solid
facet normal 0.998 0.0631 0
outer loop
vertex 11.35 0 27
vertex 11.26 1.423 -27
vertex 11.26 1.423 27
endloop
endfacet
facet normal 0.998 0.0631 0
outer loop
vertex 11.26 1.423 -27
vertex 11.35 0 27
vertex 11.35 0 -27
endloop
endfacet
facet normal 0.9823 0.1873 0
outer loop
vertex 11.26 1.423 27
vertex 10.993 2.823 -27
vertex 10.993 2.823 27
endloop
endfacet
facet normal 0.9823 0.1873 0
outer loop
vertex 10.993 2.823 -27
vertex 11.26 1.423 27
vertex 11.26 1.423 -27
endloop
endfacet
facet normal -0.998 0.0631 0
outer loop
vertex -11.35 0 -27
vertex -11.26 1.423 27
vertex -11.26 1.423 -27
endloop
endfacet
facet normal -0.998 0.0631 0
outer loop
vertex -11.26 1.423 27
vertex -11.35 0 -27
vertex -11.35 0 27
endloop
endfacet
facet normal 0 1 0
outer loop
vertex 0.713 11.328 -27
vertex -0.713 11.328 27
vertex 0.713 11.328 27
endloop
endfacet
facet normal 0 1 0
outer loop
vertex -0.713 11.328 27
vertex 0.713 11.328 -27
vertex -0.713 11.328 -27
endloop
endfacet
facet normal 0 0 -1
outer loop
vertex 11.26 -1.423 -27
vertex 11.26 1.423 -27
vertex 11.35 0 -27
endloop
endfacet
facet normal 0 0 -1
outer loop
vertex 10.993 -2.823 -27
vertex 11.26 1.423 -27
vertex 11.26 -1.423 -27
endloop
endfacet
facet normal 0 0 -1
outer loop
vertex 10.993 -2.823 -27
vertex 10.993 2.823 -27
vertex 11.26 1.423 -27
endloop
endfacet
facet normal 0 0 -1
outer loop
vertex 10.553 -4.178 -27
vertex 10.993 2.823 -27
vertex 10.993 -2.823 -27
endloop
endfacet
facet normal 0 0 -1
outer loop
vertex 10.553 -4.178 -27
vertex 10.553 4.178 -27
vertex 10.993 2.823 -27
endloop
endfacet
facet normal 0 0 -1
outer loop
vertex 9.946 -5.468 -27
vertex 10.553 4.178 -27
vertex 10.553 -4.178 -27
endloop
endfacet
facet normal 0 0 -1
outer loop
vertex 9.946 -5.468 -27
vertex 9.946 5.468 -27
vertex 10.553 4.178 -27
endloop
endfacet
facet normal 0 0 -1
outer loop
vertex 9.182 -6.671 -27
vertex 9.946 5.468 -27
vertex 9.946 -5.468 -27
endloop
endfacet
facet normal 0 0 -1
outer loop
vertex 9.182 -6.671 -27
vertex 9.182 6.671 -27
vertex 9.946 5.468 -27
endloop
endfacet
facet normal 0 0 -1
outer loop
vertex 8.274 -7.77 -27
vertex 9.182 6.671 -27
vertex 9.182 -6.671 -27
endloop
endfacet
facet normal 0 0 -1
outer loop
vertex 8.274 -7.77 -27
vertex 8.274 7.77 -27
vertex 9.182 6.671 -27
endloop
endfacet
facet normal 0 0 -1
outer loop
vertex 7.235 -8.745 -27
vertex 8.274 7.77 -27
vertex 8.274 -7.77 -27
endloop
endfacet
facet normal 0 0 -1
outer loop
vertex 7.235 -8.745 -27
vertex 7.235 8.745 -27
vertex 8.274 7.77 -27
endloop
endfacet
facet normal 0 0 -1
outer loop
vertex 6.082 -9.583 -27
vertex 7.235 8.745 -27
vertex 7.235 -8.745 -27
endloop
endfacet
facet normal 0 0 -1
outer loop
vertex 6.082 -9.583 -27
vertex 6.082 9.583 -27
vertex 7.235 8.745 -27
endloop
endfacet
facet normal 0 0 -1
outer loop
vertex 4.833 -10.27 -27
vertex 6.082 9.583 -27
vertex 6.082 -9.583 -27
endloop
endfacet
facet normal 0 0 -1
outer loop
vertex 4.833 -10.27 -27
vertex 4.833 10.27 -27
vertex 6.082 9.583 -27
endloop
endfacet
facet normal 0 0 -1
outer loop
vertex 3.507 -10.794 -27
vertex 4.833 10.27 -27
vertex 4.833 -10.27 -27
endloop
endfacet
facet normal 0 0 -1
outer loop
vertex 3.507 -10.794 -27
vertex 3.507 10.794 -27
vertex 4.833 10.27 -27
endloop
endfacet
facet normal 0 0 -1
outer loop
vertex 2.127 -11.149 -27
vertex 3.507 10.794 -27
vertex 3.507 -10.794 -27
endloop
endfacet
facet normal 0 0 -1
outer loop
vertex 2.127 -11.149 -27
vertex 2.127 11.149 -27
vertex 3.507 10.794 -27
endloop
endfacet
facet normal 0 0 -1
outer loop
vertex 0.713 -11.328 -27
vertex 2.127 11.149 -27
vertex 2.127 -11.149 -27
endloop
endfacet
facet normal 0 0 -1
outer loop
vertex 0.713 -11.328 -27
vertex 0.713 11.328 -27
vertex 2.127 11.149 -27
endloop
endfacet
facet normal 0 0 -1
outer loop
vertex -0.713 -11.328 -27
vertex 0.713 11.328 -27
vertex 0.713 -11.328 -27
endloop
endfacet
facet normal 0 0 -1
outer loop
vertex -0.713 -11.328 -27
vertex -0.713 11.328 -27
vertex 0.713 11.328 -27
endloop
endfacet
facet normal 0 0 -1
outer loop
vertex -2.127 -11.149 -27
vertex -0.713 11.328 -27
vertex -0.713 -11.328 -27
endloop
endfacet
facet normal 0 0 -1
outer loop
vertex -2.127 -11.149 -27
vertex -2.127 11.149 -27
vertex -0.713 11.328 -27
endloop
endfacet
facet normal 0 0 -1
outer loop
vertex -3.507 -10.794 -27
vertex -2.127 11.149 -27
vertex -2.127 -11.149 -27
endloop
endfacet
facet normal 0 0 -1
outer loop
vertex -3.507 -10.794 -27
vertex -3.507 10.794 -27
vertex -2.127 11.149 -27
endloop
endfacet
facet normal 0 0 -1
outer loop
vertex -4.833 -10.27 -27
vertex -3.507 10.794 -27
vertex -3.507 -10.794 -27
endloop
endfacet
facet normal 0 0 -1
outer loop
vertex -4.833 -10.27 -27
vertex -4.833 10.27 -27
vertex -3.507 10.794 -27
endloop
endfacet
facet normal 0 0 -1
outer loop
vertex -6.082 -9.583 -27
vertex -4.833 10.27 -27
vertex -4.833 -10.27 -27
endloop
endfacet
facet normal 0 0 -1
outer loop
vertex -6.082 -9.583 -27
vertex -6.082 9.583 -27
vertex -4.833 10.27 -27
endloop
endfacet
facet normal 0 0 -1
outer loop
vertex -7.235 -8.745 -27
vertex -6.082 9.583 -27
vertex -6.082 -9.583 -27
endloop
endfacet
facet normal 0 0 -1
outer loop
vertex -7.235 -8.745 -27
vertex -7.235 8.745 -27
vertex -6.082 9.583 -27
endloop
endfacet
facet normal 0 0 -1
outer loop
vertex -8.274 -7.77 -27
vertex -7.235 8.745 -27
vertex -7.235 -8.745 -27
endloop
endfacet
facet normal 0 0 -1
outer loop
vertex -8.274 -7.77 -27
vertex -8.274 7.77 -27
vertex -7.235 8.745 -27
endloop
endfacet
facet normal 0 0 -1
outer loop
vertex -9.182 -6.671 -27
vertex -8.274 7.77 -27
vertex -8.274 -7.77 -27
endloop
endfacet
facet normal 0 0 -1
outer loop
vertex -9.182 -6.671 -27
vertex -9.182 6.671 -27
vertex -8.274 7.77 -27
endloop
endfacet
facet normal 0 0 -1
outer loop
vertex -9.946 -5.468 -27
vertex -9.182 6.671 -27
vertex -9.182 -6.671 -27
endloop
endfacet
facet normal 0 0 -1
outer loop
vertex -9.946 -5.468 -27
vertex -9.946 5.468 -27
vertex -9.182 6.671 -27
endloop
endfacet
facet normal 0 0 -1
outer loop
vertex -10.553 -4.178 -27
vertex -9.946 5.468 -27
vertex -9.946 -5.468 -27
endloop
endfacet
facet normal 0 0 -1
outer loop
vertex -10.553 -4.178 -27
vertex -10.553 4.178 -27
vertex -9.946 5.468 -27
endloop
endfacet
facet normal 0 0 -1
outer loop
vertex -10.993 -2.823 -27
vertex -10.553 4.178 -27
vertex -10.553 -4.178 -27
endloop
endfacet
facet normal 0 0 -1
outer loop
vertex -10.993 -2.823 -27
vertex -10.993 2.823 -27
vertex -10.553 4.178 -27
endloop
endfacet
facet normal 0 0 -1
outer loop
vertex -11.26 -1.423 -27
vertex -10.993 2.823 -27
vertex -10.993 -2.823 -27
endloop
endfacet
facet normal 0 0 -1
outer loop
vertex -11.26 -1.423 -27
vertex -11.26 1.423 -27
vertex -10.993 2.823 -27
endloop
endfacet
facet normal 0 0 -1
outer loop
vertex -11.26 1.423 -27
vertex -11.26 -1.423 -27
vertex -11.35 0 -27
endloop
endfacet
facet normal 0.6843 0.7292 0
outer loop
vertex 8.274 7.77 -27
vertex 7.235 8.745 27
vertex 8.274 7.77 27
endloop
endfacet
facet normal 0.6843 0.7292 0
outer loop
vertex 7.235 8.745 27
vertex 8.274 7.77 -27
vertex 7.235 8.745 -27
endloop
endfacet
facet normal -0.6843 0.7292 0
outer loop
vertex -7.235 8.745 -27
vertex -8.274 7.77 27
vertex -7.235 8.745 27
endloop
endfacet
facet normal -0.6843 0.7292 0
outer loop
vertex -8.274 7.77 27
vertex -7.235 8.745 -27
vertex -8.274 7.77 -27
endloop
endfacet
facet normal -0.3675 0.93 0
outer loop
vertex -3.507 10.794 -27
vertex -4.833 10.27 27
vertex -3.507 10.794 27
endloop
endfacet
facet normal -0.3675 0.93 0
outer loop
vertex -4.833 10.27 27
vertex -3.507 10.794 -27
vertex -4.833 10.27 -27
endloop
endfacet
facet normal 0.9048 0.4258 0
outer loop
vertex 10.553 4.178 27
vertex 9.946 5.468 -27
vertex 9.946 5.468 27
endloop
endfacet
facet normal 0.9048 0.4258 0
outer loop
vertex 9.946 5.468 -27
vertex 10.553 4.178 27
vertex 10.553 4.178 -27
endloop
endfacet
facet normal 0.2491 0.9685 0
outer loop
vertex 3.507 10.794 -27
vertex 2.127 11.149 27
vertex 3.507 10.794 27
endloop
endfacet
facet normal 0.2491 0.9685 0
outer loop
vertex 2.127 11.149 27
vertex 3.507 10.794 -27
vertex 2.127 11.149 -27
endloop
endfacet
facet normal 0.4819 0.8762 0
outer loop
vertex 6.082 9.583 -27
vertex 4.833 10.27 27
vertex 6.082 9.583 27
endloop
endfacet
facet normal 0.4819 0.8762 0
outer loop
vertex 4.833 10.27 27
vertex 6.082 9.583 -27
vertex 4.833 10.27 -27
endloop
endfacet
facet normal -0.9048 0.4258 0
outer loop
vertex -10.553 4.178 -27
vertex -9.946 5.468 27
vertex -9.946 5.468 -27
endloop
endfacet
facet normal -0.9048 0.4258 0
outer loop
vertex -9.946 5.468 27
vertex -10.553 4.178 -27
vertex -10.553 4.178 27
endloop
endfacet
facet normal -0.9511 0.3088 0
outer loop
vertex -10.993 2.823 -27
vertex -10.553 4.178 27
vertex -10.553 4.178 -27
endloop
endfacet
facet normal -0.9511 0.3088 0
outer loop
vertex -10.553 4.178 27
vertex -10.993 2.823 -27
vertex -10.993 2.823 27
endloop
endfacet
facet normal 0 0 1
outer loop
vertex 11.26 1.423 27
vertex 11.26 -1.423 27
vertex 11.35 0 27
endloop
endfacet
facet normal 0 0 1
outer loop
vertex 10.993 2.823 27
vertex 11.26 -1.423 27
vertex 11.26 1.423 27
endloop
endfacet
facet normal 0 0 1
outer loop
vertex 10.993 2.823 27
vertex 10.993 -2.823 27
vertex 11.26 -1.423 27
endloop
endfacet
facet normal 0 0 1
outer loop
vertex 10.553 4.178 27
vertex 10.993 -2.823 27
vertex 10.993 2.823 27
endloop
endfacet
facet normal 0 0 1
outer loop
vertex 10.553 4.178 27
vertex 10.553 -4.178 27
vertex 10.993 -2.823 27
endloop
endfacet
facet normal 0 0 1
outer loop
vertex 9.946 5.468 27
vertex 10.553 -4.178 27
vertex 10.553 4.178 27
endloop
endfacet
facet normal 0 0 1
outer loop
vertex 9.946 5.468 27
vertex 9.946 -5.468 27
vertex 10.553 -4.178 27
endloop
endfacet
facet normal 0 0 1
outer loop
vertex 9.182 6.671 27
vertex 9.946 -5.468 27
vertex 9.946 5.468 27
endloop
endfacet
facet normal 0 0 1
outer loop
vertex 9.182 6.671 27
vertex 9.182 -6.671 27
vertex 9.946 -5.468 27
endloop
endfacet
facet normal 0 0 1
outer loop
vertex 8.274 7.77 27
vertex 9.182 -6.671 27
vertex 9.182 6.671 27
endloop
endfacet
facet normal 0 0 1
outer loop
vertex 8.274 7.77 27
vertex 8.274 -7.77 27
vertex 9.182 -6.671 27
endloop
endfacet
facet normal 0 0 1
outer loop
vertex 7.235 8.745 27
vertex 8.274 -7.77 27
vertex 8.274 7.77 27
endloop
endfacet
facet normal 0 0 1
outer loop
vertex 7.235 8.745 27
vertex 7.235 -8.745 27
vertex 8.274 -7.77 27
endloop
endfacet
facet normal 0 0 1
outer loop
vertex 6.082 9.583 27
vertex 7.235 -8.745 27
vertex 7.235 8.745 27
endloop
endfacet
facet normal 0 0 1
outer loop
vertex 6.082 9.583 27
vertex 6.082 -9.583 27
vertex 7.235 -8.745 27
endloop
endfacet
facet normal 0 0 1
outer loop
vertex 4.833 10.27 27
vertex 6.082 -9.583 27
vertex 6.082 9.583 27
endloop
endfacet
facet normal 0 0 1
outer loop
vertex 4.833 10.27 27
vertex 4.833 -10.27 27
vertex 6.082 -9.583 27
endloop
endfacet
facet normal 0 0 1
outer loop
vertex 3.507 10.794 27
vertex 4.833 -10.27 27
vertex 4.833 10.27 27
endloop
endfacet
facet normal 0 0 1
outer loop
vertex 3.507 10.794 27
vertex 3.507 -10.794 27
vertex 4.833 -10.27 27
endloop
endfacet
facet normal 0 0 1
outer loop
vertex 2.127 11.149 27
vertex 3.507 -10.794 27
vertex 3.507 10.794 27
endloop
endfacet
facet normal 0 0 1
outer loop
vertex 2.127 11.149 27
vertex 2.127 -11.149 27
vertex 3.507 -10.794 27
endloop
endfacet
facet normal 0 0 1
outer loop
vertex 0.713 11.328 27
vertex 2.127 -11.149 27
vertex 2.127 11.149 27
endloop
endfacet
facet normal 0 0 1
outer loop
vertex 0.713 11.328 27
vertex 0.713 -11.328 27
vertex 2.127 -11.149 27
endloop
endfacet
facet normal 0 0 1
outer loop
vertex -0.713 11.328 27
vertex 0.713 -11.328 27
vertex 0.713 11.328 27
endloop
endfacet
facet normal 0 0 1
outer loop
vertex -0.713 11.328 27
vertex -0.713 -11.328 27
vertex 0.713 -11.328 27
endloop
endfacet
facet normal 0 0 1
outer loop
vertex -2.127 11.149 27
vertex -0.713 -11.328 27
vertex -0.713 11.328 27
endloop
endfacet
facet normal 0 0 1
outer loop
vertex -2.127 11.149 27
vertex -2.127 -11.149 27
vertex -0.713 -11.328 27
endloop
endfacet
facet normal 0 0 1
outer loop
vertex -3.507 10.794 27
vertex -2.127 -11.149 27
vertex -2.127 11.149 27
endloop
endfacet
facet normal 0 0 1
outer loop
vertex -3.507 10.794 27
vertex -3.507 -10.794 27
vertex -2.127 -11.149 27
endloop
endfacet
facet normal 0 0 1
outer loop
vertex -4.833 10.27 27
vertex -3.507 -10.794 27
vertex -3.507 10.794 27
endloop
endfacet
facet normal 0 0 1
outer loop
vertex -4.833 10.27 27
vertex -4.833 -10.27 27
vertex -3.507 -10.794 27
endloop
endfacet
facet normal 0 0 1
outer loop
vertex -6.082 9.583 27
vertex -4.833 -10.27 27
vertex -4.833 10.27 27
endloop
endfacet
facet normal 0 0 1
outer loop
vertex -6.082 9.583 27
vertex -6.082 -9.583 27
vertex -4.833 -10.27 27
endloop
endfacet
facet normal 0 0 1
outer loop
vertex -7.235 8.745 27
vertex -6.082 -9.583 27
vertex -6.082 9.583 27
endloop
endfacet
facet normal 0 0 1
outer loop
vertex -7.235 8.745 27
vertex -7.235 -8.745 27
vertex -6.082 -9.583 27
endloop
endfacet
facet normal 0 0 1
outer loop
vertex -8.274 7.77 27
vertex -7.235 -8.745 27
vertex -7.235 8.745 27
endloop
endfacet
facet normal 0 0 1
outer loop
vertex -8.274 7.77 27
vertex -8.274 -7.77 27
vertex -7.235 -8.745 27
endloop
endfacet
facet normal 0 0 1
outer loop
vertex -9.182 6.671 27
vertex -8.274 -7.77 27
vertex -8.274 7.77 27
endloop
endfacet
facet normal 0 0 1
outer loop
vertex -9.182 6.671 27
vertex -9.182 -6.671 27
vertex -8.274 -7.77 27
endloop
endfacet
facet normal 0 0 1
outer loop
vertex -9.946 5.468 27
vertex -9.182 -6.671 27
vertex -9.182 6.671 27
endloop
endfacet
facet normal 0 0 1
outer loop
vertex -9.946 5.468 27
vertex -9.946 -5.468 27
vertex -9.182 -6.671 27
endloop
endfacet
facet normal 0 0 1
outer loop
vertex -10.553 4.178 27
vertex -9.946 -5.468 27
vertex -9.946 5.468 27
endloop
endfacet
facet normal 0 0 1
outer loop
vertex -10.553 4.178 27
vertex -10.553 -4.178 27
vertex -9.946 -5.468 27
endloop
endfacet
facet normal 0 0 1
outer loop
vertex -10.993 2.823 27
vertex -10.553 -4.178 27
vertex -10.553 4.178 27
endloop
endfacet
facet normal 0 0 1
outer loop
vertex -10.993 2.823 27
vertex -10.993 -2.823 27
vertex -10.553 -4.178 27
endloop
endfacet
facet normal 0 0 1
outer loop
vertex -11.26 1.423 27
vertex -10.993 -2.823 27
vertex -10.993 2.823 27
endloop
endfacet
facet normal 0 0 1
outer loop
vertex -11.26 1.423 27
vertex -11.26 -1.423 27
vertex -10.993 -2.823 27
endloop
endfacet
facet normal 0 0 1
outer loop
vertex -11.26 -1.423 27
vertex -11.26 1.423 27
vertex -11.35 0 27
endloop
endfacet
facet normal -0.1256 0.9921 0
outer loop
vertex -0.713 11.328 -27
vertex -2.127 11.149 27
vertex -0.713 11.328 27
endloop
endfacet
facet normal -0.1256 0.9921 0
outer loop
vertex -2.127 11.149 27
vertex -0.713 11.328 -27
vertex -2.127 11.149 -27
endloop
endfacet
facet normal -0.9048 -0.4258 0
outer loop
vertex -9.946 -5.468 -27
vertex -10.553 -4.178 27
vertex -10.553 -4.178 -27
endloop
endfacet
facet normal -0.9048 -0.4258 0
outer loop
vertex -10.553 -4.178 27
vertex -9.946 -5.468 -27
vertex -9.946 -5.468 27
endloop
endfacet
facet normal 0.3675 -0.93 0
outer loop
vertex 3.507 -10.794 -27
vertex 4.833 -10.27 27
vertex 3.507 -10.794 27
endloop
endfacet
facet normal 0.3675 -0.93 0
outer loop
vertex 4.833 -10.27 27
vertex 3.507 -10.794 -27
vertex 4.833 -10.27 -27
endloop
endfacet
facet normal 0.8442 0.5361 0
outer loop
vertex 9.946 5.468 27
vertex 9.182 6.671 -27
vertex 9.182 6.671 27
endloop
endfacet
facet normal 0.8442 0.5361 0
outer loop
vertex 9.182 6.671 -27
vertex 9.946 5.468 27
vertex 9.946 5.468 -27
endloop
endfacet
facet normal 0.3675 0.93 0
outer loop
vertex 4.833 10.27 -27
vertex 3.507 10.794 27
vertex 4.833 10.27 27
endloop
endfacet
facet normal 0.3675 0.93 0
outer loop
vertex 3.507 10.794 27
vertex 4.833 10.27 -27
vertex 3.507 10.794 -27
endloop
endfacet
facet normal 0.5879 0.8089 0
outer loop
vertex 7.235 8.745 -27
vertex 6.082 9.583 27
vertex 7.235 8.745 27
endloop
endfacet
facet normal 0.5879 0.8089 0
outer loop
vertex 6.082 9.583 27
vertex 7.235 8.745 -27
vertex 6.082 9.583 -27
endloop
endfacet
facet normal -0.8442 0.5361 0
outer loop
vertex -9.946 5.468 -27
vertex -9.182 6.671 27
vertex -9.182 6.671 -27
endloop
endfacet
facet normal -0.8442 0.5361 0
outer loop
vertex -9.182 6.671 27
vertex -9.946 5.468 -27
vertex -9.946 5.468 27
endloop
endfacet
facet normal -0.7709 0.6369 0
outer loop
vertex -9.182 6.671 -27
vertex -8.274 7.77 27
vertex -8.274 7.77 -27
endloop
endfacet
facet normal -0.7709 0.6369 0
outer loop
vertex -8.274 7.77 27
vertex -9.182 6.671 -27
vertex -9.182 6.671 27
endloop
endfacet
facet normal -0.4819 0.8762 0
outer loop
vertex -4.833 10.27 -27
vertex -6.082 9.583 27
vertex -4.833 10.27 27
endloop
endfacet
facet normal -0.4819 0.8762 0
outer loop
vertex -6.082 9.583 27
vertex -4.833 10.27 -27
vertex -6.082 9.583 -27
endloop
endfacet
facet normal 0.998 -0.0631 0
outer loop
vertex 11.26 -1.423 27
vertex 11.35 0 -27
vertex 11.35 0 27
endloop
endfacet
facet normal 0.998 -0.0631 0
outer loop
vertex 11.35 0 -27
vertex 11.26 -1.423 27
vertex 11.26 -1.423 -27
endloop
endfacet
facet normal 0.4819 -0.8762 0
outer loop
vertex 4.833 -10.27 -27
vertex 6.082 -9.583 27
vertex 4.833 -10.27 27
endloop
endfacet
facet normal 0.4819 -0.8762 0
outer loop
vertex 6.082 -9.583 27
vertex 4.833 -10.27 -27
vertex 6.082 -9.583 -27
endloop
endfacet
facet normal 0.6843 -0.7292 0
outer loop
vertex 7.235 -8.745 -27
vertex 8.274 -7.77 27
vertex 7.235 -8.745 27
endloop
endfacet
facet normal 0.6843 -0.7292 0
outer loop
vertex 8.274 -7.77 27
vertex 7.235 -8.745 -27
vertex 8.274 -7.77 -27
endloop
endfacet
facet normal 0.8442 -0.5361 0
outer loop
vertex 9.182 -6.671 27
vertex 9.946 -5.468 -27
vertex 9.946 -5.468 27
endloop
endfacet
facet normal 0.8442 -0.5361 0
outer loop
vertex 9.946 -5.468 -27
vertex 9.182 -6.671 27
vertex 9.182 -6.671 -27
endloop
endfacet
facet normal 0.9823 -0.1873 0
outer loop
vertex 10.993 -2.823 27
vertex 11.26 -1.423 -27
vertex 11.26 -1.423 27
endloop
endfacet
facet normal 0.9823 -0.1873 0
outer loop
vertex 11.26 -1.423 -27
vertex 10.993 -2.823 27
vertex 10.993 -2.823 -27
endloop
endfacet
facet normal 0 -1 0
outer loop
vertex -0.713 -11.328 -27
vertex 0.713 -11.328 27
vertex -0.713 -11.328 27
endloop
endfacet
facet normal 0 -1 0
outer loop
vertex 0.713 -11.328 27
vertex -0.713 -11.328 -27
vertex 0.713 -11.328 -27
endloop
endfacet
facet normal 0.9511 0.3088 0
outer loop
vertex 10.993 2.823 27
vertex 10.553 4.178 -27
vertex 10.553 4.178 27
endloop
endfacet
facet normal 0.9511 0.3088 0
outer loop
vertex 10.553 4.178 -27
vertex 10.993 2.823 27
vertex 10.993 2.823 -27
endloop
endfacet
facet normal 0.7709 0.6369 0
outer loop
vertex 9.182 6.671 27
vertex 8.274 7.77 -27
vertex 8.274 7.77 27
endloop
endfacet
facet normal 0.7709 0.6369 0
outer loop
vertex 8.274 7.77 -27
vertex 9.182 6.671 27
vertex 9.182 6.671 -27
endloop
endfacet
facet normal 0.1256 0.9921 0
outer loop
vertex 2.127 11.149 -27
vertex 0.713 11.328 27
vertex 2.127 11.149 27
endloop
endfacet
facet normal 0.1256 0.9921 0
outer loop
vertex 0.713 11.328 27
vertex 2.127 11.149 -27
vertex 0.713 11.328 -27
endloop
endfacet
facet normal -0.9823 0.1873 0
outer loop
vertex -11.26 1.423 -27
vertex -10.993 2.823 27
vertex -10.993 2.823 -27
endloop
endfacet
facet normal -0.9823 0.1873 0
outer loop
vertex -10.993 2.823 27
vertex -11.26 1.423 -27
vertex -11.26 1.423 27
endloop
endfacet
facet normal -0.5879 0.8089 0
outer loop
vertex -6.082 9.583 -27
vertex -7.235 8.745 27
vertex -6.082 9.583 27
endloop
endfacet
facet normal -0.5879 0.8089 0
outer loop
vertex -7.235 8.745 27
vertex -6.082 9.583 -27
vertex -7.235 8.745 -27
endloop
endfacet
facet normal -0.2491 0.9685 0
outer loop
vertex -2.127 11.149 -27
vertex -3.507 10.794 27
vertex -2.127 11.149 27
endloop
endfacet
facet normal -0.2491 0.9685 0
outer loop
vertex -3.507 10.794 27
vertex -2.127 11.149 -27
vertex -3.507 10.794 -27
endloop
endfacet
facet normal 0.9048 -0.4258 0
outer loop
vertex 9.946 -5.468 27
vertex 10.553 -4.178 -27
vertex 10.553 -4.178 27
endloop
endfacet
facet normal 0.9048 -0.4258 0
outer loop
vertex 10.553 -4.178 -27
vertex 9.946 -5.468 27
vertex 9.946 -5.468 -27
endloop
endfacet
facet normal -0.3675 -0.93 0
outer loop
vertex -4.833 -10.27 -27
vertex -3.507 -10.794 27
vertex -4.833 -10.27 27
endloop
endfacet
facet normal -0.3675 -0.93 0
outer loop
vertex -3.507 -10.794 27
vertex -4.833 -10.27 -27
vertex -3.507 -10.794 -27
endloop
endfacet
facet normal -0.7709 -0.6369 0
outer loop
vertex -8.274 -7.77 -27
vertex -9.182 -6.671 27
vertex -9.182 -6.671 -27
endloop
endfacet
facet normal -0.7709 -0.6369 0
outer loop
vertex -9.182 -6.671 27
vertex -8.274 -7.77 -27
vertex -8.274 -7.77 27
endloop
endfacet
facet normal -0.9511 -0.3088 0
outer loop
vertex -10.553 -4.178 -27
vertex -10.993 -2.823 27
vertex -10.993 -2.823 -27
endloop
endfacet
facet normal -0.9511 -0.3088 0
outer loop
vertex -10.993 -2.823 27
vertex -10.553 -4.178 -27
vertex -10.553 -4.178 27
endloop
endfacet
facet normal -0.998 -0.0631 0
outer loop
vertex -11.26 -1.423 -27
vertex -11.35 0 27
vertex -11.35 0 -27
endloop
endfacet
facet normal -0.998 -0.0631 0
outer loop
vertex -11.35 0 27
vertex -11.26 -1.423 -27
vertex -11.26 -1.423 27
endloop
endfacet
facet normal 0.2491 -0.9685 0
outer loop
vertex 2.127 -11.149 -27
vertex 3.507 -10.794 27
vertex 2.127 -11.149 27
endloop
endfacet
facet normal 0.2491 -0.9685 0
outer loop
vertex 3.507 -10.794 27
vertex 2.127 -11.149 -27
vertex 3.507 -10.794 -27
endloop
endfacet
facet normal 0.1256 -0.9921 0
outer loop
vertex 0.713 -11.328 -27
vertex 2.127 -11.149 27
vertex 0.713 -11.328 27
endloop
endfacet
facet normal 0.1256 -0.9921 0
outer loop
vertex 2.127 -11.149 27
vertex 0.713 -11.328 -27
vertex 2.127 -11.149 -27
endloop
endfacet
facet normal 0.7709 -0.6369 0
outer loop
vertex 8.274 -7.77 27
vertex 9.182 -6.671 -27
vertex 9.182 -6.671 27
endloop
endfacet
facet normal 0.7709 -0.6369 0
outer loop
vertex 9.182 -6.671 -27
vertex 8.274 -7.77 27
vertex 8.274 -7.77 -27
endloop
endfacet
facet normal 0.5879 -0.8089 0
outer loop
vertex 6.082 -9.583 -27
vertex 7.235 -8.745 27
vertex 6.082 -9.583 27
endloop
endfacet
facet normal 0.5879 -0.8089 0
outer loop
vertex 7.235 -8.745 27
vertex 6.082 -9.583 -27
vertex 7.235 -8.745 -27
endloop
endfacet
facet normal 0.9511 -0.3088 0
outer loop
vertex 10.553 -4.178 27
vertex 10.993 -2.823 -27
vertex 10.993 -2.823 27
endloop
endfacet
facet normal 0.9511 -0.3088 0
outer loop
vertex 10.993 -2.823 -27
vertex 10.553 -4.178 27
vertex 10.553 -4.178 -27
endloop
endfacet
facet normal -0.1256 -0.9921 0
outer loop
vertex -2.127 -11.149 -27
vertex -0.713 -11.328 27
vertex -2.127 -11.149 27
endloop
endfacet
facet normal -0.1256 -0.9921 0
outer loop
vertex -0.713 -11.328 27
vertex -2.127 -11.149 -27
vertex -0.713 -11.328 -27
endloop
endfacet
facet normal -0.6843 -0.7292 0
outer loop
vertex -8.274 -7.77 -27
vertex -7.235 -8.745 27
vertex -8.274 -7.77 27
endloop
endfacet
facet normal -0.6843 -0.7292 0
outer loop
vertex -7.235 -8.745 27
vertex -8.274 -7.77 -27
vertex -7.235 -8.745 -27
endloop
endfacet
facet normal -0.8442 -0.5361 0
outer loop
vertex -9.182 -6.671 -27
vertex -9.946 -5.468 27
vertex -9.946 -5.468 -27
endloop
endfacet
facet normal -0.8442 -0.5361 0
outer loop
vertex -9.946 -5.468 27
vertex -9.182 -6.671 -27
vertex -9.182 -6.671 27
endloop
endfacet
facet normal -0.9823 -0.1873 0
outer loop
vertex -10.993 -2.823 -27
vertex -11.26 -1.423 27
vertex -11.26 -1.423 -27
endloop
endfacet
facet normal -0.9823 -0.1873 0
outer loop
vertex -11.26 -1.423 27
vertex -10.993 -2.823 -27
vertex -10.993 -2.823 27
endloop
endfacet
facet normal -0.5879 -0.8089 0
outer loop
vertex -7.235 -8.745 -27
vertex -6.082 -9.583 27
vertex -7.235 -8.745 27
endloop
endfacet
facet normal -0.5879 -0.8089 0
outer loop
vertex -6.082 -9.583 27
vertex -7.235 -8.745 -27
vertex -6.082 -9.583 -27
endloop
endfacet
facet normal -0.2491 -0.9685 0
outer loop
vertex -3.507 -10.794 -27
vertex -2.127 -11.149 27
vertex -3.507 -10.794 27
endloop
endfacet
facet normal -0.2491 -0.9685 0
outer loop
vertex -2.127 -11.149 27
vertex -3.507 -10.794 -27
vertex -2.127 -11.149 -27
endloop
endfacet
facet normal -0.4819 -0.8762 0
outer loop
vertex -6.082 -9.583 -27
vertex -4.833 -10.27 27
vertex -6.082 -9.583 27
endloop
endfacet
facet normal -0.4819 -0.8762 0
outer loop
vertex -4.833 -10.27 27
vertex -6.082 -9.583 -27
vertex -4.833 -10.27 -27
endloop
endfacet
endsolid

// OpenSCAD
$fn = 50;


difference() {
	union() {
		translate(v = [0, 0, -27.0000000000]) {
			cylinder(h = 54, r = 11.3500000000);
		}
	}
	union() {
		translate(v = [0, 0, -100.0000000000]) {
			cylinder(h = 200, r = 0);
		}
	}
}
